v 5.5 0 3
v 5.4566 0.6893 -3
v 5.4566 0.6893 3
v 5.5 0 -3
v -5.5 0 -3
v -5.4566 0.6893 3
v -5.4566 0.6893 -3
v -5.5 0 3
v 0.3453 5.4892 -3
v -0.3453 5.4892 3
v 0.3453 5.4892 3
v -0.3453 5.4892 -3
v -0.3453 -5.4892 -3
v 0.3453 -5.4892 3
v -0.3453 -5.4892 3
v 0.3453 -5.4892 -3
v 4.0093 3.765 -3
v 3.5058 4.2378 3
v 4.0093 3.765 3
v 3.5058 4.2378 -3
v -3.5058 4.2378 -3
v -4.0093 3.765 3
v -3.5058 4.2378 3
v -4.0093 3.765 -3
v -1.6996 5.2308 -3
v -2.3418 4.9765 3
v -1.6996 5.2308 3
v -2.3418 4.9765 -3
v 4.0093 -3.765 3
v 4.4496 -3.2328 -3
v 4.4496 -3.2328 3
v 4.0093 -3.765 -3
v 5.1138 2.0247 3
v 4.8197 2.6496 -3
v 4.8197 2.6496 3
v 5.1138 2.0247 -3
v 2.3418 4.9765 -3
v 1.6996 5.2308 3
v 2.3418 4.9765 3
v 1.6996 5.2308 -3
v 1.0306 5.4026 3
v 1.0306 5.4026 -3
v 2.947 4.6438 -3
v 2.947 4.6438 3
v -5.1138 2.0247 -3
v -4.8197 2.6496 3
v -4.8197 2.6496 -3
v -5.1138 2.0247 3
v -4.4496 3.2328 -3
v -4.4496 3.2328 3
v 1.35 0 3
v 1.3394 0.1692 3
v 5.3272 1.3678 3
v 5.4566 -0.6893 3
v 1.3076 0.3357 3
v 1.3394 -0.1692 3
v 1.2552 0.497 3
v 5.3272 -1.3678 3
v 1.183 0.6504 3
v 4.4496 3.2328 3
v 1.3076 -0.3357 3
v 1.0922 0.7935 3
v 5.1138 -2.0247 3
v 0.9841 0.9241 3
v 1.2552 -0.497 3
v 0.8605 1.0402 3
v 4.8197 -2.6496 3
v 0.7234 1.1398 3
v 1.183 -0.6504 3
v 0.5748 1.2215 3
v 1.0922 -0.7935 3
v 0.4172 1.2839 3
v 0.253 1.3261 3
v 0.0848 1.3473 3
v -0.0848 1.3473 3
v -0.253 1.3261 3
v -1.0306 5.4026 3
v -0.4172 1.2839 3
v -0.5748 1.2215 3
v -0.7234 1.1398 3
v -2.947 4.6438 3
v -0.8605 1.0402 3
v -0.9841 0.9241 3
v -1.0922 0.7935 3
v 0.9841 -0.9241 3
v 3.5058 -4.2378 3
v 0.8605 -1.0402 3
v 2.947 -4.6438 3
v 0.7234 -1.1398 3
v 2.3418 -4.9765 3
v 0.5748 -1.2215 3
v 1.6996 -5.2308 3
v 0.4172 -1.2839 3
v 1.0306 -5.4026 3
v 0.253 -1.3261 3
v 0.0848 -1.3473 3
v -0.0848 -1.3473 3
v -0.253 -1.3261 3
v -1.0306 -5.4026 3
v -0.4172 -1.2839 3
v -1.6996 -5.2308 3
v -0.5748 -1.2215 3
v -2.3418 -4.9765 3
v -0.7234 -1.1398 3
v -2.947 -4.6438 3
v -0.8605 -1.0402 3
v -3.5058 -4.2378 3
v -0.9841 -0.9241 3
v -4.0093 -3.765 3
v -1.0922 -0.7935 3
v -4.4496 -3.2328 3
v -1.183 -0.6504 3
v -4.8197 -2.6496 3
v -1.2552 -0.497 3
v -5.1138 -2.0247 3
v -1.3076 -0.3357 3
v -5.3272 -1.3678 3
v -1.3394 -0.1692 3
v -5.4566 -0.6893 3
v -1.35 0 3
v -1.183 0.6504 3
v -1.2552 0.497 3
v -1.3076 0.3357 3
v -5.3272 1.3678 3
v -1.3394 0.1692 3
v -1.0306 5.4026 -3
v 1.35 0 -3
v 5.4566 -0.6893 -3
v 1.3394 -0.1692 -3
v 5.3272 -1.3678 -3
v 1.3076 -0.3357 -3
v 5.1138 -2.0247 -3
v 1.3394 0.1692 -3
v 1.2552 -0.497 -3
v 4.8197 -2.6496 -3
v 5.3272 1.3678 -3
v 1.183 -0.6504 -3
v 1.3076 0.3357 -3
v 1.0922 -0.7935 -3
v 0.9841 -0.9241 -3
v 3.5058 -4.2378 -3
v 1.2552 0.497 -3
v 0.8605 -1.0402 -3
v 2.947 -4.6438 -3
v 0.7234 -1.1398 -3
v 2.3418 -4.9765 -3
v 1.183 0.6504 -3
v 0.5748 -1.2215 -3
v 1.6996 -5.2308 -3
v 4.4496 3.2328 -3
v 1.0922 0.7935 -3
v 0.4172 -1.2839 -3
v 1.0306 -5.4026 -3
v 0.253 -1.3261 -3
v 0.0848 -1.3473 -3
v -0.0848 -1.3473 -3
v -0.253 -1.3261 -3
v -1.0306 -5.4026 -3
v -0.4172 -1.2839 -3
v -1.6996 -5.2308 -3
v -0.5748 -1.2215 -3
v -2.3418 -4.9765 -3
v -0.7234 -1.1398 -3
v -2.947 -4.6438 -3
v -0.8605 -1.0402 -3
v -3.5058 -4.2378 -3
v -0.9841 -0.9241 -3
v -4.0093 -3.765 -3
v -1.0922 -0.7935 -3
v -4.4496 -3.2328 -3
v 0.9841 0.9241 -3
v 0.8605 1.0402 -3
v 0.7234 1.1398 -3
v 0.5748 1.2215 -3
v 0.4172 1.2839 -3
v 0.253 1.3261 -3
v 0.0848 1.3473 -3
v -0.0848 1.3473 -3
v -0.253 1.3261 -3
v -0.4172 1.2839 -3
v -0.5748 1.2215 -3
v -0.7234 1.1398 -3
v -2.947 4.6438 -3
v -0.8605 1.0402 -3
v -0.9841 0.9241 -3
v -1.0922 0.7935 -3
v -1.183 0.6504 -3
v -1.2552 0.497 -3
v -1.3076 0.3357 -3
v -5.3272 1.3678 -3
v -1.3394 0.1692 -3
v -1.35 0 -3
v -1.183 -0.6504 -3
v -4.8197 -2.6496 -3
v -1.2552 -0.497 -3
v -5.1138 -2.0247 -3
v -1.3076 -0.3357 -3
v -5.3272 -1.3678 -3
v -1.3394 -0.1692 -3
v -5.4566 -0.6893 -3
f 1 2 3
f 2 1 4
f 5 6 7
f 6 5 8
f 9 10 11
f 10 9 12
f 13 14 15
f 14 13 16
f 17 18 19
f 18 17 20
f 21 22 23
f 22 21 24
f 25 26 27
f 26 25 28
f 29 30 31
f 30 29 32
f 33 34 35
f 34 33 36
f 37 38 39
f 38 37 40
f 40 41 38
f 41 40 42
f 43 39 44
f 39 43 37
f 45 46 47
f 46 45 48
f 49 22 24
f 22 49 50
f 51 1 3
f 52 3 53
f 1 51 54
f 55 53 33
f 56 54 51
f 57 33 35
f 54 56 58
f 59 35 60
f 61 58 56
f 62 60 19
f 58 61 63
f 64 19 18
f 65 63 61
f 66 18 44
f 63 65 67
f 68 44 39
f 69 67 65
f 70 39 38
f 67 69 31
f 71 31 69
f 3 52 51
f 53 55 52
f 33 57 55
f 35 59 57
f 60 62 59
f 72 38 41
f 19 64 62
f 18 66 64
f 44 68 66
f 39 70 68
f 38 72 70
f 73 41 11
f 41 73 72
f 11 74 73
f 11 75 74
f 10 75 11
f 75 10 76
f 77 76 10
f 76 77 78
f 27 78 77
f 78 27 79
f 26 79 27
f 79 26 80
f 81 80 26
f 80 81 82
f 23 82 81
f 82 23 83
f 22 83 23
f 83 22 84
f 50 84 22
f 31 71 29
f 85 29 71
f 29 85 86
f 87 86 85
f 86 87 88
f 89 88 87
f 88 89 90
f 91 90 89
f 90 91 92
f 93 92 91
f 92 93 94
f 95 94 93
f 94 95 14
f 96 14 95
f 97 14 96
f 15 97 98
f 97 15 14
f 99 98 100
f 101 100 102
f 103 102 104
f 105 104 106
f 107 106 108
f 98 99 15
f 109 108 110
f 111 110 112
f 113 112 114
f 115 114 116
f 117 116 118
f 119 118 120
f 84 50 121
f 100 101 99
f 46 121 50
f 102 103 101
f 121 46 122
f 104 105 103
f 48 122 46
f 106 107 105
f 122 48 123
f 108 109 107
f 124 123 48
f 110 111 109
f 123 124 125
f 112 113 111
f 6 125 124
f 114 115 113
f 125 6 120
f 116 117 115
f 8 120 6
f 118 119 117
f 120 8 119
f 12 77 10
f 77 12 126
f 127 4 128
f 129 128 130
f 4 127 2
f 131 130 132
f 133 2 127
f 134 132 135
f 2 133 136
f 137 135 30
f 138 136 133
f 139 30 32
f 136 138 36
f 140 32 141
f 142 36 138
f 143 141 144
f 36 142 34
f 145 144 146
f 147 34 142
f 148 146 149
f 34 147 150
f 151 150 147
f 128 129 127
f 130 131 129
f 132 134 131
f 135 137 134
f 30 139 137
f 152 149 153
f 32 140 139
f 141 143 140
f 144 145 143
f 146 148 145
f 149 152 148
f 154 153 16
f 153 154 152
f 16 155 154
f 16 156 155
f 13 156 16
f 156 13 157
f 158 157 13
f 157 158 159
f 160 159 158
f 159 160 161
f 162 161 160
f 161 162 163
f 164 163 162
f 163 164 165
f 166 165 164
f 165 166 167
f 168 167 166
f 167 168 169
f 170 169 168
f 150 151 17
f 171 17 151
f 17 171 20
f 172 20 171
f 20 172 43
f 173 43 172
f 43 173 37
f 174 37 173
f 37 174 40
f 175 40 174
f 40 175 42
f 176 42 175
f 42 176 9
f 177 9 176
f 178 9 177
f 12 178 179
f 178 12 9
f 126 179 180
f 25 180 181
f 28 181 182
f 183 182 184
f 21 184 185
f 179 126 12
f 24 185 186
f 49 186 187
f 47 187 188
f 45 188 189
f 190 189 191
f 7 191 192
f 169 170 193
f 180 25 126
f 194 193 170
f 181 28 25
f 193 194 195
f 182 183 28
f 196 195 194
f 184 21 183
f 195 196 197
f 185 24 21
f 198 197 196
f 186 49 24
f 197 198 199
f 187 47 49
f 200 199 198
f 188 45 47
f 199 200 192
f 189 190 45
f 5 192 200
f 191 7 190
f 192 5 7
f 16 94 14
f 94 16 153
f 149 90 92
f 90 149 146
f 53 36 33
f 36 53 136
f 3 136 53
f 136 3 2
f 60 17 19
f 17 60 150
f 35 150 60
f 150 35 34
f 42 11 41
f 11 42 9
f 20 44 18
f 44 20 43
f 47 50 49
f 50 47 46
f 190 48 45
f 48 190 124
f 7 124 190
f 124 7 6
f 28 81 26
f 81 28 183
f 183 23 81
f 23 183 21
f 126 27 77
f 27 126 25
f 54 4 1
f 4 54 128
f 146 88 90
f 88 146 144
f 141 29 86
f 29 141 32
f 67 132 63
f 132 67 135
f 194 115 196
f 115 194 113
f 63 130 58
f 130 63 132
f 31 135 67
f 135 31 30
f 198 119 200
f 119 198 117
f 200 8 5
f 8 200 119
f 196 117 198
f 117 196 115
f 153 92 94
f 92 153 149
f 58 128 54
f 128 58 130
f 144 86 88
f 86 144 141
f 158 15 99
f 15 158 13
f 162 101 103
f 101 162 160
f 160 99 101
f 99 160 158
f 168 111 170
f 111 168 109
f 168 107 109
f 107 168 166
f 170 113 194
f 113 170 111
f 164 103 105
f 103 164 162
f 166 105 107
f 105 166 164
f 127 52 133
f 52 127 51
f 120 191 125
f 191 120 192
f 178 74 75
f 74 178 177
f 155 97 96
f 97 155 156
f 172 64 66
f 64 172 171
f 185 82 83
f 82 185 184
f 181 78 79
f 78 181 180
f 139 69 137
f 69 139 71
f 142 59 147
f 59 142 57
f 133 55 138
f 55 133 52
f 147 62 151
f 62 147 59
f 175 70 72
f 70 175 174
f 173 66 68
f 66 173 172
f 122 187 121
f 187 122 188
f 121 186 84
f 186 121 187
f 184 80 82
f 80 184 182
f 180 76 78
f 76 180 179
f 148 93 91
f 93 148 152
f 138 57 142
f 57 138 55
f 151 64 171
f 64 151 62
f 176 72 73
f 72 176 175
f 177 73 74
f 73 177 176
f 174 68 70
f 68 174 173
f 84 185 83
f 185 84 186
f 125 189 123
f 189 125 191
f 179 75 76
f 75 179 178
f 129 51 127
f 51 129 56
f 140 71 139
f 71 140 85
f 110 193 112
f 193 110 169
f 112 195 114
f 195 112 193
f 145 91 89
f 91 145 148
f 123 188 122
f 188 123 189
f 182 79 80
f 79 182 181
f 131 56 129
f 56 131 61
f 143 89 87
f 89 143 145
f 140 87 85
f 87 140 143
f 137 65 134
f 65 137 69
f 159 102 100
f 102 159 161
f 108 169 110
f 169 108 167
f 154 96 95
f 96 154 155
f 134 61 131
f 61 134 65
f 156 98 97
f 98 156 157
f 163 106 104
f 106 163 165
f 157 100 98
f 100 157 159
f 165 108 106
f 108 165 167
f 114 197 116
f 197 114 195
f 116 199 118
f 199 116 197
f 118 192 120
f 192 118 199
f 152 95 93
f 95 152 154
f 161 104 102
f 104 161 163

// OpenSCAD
$fn = 50;


difference() {
	union() {
		translate(v = [0, 0, -3.0000000000]) {
			cylinder(h = 6, r = 5.5000000000);
		}
	}
	union() {
		translate(v = [0, 0, -100.0000000000]) {
			cylinder(h = 200, r = 1.3500000000);
		}
	}
}
